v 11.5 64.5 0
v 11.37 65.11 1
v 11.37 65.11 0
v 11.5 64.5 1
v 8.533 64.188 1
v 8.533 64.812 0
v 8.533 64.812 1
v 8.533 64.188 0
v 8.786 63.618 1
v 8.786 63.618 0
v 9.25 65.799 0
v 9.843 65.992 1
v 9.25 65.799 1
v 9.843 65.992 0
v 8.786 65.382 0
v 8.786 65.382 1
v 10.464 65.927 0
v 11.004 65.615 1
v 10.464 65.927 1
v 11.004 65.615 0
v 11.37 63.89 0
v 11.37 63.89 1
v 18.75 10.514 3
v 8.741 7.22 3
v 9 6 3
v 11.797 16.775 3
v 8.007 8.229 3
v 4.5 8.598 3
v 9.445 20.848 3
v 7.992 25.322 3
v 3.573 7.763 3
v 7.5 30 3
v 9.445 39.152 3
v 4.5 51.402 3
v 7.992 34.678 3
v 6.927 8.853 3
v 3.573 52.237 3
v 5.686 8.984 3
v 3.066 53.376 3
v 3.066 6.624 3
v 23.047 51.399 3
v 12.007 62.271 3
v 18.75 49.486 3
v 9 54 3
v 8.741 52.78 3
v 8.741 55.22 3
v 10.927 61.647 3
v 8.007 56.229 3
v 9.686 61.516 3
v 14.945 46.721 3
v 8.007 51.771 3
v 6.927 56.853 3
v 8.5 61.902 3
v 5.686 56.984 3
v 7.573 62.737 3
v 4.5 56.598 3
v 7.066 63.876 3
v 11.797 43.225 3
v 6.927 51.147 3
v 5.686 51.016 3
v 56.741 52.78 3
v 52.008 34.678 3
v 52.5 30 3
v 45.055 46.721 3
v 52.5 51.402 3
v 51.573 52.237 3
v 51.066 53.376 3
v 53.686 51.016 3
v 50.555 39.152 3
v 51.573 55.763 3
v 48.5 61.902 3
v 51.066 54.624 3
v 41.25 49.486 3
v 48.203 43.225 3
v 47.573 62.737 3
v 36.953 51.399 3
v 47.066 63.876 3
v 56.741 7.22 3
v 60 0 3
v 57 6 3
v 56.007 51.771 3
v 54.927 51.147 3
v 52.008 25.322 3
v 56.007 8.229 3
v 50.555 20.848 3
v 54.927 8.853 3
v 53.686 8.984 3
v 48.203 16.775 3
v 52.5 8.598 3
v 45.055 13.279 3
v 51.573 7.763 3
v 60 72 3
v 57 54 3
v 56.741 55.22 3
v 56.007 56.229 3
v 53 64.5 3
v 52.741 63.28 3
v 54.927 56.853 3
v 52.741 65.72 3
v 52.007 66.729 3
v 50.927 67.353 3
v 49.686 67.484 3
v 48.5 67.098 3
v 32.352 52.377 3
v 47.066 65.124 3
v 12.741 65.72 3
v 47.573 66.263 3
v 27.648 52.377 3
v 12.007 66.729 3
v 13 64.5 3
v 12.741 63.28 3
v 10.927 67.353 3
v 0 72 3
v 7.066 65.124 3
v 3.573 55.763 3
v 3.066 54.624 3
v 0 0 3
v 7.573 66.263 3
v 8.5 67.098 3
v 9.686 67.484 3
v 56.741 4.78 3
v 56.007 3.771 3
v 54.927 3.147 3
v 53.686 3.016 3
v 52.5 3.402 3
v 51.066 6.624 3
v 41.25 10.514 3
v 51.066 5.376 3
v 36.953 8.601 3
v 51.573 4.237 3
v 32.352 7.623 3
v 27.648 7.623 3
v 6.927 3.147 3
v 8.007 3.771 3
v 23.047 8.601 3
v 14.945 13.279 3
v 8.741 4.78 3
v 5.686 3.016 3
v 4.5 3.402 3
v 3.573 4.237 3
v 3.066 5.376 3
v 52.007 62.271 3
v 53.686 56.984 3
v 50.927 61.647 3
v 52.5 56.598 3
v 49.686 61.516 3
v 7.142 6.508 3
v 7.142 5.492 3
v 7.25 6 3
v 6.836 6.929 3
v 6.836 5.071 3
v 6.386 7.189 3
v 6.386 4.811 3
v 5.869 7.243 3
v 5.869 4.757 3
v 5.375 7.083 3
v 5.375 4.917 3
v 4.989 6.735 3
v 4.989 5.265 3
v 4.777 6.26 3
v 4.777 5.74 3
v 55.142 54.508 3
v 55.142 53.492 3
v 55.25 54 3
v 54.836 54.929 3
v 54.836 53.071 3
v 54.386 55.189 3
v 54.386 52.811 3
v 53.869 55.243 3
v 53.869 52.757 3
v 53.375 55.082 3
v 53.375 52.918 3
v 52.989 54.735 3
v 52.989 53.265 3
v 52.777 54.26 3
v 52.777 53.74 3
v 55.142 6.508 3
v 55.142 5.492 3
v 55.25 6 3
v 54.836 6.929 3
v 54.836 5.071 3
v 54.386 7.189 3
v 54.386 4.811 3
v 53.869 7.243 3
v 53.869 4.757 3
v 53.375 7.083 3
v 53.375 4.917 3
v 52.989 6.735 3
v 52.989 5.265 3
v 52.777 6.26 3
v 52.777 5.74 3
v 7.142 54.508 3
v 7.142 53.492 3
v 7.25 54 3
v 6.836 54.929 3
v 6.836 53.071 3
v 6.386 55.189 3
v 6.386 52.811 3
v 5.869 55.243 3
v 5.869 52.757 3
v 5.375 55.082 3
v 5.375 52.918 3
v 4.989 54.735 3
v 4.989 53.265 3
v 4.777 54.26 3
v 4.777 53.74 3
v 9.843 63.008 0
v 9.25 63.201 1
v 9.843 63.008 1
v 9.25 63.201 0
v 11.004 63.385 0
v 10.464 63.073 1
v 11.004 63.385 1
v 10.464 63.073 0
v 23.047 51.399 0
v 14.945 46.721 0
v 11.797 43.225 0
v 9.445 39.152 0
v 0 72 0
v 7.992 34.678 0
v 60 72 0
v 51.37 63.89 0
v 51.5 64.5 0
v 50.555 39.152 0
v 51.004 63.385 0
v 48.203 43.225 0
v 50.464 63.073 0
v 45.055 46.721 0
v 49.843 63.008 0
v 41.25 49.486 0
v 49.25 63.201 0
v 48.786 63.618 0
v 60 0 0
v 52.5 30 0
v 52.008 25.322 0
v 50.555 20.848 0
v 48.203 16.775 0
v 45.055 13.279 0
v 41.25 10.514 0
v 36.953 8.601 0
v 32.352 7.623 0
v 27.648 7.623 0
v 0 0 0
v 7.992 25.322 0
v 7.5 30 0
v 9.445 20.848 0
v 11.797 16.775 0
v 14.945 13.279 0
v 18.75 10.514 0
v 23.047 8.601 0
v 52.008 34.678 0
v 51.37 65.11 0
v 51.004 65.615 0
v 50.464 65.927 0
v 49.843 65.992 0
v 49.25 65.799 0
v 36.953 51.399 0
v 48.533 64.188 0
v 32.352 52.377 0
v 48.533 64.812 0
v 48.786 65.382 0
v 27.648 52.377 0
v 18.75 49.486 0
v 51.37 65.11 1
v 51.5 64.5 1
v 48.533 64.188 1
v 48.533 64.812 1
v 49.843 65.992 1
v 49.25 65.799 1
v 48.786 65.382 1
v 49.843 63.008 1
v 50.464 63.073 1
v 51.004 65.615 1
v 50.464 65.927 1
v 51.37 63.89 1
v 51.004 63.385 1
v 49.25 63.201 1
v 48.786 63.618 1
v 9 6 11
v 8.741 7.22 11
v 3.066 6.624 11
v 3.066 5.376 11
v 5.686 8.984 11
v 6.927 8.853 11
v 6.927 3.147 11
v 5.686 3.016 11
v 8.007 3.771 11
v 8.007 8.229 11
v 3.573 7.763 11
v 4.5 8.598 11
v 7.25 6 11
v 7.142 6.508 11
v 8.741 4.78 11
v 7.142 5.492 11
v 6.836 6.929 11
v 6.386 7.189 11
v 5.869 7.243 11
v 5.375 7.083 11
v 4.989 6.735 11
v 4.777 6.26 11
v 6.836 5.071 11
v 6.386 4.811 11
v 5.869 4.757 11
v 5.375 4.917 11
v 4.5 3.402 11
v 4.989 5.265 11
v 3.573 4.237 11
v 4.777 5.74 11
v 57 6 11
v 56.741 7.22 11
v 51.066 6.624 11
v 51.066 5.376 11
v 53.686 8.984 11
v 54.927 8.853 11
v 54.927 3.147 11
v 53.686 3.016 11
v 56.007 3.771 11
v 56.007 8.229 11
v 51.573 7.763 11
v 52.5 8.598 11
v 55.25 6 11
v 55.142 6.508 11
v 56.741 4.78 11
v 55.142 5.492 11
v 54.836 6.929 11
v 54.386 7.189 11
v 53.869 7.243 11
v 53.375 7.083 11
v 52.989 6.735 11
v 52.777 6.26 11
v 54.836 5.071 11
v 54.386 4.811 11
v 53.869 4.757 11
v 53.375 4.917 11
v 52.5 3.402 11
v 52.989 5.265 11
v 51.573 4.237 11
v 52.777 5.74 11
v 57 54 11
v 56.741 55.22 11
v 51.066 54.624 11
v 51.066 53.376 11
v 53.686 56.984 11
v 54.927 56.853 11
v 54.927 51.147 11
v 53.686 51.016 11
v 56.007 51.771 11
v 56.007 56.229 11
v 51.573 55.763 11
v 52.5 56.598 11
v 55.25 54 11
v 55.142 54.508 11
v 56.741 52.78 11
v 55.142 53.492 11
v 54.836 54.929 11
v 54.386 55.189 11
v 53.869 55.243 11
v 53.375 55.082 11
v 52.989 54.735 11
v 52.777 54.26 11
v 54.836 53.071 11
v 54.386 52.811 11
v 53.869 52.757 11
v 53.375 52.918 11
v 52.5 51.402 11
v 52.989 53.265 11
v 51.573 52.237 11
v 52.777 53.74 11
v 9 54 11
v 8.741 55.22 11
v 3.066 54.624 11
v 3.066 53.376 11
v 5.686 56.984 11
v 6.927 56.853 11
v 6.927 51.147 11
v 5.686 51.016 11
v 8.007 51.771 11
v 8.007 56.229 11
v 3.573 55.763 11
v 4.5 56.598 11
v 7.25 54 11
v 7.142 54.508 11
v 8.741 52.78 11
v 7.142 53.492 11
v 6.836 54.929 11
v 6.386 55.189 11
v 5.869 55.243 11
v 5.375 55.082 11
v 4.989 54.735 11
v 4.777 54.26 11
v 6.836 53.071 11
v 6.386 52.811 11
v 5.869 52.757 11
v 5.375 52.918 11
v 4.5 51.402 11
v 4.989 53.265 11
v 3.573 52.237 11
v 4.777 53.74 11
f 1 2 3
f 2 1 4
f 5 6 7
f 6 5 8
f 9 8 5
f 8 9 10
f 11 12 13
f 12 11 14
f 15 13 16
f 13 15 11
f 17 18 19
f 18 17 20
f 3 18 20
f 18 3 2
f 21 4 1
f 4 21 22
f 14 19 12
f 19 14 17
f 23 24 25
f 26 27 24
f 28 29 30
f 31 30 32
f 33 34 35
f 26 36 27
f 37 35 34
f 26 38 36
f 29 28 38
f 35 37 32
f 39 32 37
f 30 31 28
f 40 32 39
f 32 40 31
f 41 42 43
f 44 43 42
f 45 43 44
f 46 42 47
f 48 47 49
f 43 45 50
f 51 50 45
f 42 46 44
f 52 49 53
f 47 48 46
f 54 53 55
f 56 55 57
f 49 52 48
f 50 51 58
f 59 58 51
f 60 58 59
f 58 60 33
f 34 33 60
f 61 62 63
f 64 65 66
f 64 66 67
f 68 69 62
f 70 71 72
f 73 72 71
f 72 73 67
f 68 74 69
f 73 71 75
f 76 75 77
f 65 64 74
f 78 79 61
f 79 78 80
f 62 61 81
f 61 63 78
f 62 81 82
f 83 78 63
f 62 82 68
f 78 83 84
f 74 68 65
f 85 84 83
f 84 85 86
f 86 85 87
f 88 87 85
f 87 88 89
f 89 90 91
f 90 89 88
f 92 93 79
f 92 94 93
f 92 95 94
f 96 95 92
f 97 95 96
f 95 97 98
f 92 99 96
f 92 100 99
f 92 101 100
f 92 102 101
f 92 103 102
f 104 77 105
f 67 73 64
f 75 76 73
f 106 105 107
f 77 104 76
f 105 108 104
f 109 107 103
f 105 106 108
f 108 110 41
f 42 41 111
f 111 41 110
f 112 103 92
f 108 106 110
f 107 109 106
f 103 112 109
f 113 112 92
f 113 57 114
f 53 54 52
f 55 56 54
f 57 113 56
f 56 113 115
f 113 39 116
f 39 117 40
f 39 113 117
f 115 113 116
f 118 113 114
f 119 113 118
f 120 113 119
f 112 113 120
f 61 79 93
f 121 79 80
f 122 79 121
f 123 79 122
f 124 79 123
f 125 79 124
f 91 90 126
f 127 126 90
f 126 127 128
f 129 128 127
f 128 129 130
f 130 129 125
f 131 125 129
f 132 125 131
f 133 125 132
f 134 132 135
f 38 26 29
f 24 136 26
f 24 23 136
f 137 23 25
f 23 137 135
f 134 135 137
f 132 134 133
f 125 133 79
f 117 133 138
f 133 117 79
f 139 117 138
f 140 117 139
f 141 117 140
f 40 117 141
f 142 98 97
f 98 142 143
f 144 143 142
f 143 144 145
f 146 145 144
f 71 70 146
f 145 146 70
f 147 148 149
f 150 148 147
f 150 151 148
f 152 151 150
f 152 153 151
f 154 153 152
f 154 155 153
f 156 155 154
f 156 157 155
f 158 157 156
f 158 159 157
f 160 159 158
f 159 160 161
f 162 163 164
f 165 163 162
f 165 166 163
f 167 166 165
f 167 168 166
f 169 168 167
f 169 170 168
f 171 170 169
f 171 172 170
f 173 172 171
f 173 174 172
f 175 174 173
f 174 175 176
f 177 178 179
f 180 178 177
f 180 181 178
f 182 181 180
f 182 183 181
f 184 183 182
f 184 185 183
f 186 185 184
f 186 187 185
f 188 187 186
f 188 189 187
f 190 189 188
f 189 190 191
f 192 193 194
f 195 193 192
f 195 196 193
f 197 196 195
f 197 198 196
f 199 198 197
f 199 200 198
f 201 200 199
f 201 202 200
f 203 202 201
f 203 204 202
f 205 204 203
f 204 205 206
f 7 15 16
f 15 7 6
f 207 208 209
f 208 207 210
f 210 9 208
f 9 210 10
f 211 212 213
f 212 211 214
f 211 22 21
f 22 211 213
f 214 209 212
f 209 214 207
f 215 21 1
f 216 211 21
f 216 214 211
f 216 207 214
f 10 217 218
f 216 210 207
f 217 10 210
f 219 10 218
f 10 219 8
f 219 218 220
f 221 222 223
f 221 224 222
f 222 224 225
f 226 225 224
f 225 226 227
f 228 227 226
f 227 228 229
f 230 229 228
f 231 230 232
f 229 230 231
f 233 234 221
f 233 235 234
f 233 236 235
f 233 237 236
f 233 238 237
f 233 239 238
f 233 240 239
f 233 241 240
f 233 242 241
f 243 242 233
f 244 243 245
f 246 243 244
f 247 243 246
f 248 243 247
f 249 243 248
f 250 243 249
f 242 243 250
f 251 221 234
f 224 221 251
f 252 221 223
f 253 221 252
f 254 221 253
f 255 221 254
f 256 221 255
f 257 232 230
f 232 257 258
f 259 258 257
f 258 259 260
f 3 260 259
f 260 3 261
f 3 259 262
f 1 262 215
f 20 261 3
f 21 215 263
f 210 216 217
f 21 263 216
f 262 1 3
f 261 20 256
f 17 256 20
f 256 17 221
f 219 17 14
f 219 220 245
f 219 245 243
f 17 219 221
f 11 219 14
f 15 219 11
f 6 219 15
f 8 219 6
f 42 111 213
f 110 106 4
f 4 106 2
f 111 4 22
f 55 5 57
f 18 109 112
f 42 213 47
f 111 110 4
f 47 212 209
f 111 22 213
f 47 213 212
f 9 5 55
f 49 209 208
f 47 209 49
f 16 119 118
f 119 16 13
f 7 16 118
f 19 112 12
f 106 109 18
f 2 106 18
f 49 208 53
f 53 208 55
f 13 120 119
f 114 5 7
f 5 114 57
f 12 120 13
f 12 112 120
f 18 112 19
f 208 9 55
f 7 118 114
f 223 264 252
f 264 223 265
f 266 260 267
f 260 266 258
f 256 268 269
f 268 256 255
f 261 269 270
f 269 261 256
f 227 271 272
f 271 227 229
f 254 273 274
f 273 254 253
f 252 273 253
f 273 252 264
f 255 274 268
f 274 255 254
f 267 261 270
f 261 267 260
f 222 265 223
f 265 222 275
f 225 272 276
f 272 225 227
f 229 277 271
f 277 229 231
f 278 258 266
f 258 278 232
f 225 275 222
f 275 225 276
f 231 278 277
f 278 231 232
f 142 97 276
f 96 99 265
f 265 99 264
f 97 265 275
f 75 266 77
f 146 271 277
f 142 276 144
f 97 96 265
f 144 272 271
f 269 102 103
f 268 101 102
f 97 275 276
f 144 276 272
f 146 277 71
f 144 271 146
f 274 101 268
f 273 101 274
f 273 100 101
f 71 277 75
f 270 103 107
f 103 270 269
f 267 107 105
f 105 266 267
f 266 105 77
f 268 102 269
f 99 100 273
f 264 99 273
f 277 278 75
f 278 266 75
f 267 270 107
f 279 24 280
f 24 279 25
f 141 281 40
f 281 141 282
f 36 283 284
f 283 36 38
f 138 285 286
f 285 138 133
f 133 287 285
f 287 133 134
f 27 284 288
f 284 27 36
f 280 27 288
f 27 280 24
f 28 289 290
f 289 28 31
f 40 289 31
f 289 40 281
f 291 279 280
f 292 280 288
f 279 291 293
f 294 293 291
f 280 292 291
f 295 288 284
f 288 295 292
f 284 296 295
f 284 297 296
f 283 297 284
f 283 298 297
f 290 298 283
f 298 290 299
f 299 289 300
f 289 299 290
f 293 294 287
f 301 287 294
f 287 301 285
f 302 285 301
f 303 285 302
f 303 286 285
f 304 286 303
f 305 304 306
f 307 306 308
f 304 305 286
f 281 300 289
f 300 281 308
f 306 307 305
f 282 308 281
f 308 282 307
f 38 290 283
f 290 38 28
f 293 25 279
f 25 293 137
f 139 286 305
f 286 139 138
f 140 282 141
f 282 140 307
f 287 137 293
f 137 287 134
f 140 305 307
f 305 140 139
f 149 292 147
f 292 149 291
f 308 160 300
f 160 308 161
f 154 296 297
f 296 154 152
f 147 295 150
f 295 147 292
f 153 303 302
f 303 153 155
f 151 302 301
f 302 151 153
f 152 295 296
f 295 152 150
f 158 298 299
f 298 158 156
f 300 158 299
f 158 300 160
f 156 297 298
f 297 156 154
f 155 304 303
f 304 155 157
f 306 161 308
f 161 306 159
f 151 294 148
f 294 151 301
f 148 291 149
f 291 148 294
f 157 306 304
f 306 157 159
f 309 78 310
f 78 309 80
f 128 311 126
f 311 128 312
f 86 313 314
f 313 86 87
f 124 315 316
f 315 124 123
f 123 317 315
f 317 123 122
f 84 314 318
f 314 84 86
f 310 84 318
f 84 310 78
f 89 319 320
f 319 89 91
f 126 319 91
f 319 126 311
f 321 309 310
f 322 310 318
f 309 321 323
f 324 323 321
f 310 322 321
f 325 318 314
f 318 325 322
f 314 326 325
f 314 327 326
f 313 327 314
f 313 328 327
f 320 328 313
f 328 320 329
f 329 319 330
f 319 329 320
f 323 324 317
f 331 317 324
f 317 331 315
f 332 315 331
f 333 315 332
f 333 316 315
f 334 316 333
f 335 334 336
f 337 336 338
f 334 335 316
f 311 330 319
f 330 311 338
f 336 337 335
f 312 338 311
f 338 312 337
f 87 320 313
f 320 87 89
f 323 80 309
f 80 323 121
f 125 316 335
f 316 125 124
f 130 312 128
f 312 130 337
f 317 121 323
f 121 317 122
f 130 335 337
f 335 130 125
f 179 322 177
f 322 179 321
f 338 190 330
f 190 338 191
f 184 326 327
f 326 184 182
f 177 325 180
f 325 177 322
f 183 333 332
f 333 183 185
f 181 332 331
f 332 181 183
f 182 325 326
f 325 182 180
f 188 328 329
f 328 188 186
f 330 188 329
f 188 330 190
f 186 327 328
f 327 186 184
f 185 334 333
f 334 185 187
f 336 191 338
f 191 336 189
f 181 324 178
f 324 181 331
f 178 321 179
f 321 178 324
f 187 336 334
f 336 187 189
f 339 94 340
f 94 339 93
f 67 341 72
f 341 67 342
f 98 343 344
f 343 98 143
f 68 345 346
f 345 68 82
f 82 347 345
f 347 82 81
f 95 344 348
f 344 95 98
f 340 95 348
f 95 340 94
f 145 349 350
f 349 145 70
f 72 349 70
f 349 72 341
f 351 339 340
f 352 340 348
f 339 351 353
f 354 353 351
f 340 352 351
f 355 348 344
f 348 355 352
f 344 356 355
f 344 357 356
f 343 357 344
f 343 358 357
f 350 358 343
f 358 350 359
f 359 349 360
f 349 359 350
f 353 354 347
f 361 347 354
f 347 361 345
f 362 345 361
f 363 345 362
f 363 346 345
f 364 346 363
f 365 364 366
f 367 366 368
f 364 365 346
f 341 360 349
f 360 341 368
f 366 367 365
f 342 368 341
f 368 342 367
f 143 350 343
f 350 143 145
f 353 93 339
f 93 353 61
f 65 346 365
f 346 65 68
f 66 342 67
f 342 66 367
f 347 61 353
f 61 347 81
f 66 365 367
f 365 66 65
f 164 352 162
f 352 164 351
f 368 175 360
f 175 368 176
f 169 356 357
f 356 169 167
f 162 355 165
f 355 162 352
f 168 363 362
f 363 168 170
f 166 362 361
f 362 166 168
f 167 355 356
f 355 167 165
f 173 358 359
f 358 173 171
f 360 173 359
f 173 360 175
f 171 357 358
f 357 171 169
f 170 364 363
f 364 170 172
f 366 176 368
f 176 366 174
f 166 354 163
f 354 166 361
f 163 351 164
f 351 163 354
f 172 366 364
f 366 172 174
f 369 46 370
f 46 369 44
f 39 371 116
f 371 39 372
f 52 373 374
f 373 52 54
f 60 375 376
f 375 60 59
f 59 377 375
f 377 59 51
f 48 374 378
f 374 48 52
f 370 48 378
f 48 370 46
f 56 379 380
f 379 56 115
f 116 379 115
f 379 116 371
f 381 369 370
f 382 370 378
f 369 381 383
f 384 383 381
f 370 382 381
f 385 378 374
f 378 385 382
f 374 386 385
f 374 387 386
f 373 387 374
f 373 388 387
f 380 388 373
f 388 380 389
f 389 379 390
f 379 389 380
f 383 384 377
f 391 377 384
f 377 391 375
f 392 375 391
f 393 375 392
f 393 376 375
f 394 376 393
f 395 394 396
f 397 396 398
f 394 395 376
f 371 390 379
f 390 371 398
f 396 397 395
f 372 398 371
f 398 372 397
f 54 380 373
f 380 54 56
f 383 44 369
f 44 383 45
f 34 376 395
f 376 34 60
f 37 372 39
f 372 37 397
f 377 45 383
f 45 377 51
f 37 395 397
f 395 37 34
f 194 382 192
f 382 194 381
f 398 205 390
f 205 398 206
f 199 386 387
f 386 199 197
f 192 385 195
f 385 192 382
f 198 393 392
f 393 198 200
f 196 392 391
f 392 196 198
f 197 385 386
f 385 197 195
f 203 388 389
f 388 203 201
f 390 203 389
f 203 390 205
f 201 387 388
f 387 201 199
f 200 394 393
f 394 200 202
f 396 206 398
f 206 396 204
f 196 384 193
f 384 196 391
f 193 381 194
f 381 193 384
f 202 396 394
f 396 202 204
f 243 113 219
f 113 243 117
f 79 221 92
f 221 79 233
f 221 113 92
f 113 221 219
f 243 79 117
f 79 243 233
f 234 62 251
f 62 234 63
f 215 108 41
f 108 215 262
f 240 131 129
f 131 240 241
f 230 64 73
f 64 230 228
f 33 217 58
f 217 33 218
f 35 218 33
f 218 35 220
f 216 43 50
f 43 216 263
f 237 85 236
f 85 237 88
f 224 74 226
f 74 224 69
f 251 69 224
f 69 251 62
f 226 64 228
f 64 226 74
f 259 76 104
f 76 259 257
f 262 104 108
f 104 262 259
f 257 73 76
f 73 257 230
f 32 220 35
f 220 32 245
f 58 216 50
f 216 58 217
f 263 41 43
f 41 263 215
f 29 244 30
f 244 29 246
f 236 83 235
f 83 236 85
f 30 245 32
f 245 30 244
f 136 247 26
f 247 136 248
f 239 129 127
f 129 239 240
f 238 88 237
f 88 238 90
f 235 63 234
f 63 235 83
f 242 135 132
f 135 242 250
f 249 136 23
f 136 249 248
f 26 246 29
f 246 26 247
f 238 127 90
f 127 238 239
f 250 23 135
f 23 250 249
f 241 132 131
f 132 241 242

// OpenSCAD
difference() {
    cube([60,72,3]);
    translate([10,(72-57)/2+57,0]){
        cylinder(h=3,d=3,$fn=15);
        translate([0,0,1])cylinder(h=2,d1=3,d2=6,$fn=15);
    }
    translate([50,(72-57)/2+57,0]){
        cylinder(h=3,d=3,$fn=15);
        translate([0,0,1])cylinder(h=2,d1=3,d2=6,$fn=15);
    }
    translate([30,30,0])cylinder(h=3,d=45,$fn=30);
    
}
translate([(60-48)/2,(60-48)/2,1])post();
translate([(60-48)/2+48,(60-48)/2,1])post();
translate([(60-48)/2+48,(60-48)/2+48,1])post();
translate([(60-48)/2,(60-48)/2+48,1])post();

module post() {
    difference() {
        cylinder(h=10,d=6,$fn=15);
        cylinder(h=10,d=2.5,$fn=15);
    }
}
